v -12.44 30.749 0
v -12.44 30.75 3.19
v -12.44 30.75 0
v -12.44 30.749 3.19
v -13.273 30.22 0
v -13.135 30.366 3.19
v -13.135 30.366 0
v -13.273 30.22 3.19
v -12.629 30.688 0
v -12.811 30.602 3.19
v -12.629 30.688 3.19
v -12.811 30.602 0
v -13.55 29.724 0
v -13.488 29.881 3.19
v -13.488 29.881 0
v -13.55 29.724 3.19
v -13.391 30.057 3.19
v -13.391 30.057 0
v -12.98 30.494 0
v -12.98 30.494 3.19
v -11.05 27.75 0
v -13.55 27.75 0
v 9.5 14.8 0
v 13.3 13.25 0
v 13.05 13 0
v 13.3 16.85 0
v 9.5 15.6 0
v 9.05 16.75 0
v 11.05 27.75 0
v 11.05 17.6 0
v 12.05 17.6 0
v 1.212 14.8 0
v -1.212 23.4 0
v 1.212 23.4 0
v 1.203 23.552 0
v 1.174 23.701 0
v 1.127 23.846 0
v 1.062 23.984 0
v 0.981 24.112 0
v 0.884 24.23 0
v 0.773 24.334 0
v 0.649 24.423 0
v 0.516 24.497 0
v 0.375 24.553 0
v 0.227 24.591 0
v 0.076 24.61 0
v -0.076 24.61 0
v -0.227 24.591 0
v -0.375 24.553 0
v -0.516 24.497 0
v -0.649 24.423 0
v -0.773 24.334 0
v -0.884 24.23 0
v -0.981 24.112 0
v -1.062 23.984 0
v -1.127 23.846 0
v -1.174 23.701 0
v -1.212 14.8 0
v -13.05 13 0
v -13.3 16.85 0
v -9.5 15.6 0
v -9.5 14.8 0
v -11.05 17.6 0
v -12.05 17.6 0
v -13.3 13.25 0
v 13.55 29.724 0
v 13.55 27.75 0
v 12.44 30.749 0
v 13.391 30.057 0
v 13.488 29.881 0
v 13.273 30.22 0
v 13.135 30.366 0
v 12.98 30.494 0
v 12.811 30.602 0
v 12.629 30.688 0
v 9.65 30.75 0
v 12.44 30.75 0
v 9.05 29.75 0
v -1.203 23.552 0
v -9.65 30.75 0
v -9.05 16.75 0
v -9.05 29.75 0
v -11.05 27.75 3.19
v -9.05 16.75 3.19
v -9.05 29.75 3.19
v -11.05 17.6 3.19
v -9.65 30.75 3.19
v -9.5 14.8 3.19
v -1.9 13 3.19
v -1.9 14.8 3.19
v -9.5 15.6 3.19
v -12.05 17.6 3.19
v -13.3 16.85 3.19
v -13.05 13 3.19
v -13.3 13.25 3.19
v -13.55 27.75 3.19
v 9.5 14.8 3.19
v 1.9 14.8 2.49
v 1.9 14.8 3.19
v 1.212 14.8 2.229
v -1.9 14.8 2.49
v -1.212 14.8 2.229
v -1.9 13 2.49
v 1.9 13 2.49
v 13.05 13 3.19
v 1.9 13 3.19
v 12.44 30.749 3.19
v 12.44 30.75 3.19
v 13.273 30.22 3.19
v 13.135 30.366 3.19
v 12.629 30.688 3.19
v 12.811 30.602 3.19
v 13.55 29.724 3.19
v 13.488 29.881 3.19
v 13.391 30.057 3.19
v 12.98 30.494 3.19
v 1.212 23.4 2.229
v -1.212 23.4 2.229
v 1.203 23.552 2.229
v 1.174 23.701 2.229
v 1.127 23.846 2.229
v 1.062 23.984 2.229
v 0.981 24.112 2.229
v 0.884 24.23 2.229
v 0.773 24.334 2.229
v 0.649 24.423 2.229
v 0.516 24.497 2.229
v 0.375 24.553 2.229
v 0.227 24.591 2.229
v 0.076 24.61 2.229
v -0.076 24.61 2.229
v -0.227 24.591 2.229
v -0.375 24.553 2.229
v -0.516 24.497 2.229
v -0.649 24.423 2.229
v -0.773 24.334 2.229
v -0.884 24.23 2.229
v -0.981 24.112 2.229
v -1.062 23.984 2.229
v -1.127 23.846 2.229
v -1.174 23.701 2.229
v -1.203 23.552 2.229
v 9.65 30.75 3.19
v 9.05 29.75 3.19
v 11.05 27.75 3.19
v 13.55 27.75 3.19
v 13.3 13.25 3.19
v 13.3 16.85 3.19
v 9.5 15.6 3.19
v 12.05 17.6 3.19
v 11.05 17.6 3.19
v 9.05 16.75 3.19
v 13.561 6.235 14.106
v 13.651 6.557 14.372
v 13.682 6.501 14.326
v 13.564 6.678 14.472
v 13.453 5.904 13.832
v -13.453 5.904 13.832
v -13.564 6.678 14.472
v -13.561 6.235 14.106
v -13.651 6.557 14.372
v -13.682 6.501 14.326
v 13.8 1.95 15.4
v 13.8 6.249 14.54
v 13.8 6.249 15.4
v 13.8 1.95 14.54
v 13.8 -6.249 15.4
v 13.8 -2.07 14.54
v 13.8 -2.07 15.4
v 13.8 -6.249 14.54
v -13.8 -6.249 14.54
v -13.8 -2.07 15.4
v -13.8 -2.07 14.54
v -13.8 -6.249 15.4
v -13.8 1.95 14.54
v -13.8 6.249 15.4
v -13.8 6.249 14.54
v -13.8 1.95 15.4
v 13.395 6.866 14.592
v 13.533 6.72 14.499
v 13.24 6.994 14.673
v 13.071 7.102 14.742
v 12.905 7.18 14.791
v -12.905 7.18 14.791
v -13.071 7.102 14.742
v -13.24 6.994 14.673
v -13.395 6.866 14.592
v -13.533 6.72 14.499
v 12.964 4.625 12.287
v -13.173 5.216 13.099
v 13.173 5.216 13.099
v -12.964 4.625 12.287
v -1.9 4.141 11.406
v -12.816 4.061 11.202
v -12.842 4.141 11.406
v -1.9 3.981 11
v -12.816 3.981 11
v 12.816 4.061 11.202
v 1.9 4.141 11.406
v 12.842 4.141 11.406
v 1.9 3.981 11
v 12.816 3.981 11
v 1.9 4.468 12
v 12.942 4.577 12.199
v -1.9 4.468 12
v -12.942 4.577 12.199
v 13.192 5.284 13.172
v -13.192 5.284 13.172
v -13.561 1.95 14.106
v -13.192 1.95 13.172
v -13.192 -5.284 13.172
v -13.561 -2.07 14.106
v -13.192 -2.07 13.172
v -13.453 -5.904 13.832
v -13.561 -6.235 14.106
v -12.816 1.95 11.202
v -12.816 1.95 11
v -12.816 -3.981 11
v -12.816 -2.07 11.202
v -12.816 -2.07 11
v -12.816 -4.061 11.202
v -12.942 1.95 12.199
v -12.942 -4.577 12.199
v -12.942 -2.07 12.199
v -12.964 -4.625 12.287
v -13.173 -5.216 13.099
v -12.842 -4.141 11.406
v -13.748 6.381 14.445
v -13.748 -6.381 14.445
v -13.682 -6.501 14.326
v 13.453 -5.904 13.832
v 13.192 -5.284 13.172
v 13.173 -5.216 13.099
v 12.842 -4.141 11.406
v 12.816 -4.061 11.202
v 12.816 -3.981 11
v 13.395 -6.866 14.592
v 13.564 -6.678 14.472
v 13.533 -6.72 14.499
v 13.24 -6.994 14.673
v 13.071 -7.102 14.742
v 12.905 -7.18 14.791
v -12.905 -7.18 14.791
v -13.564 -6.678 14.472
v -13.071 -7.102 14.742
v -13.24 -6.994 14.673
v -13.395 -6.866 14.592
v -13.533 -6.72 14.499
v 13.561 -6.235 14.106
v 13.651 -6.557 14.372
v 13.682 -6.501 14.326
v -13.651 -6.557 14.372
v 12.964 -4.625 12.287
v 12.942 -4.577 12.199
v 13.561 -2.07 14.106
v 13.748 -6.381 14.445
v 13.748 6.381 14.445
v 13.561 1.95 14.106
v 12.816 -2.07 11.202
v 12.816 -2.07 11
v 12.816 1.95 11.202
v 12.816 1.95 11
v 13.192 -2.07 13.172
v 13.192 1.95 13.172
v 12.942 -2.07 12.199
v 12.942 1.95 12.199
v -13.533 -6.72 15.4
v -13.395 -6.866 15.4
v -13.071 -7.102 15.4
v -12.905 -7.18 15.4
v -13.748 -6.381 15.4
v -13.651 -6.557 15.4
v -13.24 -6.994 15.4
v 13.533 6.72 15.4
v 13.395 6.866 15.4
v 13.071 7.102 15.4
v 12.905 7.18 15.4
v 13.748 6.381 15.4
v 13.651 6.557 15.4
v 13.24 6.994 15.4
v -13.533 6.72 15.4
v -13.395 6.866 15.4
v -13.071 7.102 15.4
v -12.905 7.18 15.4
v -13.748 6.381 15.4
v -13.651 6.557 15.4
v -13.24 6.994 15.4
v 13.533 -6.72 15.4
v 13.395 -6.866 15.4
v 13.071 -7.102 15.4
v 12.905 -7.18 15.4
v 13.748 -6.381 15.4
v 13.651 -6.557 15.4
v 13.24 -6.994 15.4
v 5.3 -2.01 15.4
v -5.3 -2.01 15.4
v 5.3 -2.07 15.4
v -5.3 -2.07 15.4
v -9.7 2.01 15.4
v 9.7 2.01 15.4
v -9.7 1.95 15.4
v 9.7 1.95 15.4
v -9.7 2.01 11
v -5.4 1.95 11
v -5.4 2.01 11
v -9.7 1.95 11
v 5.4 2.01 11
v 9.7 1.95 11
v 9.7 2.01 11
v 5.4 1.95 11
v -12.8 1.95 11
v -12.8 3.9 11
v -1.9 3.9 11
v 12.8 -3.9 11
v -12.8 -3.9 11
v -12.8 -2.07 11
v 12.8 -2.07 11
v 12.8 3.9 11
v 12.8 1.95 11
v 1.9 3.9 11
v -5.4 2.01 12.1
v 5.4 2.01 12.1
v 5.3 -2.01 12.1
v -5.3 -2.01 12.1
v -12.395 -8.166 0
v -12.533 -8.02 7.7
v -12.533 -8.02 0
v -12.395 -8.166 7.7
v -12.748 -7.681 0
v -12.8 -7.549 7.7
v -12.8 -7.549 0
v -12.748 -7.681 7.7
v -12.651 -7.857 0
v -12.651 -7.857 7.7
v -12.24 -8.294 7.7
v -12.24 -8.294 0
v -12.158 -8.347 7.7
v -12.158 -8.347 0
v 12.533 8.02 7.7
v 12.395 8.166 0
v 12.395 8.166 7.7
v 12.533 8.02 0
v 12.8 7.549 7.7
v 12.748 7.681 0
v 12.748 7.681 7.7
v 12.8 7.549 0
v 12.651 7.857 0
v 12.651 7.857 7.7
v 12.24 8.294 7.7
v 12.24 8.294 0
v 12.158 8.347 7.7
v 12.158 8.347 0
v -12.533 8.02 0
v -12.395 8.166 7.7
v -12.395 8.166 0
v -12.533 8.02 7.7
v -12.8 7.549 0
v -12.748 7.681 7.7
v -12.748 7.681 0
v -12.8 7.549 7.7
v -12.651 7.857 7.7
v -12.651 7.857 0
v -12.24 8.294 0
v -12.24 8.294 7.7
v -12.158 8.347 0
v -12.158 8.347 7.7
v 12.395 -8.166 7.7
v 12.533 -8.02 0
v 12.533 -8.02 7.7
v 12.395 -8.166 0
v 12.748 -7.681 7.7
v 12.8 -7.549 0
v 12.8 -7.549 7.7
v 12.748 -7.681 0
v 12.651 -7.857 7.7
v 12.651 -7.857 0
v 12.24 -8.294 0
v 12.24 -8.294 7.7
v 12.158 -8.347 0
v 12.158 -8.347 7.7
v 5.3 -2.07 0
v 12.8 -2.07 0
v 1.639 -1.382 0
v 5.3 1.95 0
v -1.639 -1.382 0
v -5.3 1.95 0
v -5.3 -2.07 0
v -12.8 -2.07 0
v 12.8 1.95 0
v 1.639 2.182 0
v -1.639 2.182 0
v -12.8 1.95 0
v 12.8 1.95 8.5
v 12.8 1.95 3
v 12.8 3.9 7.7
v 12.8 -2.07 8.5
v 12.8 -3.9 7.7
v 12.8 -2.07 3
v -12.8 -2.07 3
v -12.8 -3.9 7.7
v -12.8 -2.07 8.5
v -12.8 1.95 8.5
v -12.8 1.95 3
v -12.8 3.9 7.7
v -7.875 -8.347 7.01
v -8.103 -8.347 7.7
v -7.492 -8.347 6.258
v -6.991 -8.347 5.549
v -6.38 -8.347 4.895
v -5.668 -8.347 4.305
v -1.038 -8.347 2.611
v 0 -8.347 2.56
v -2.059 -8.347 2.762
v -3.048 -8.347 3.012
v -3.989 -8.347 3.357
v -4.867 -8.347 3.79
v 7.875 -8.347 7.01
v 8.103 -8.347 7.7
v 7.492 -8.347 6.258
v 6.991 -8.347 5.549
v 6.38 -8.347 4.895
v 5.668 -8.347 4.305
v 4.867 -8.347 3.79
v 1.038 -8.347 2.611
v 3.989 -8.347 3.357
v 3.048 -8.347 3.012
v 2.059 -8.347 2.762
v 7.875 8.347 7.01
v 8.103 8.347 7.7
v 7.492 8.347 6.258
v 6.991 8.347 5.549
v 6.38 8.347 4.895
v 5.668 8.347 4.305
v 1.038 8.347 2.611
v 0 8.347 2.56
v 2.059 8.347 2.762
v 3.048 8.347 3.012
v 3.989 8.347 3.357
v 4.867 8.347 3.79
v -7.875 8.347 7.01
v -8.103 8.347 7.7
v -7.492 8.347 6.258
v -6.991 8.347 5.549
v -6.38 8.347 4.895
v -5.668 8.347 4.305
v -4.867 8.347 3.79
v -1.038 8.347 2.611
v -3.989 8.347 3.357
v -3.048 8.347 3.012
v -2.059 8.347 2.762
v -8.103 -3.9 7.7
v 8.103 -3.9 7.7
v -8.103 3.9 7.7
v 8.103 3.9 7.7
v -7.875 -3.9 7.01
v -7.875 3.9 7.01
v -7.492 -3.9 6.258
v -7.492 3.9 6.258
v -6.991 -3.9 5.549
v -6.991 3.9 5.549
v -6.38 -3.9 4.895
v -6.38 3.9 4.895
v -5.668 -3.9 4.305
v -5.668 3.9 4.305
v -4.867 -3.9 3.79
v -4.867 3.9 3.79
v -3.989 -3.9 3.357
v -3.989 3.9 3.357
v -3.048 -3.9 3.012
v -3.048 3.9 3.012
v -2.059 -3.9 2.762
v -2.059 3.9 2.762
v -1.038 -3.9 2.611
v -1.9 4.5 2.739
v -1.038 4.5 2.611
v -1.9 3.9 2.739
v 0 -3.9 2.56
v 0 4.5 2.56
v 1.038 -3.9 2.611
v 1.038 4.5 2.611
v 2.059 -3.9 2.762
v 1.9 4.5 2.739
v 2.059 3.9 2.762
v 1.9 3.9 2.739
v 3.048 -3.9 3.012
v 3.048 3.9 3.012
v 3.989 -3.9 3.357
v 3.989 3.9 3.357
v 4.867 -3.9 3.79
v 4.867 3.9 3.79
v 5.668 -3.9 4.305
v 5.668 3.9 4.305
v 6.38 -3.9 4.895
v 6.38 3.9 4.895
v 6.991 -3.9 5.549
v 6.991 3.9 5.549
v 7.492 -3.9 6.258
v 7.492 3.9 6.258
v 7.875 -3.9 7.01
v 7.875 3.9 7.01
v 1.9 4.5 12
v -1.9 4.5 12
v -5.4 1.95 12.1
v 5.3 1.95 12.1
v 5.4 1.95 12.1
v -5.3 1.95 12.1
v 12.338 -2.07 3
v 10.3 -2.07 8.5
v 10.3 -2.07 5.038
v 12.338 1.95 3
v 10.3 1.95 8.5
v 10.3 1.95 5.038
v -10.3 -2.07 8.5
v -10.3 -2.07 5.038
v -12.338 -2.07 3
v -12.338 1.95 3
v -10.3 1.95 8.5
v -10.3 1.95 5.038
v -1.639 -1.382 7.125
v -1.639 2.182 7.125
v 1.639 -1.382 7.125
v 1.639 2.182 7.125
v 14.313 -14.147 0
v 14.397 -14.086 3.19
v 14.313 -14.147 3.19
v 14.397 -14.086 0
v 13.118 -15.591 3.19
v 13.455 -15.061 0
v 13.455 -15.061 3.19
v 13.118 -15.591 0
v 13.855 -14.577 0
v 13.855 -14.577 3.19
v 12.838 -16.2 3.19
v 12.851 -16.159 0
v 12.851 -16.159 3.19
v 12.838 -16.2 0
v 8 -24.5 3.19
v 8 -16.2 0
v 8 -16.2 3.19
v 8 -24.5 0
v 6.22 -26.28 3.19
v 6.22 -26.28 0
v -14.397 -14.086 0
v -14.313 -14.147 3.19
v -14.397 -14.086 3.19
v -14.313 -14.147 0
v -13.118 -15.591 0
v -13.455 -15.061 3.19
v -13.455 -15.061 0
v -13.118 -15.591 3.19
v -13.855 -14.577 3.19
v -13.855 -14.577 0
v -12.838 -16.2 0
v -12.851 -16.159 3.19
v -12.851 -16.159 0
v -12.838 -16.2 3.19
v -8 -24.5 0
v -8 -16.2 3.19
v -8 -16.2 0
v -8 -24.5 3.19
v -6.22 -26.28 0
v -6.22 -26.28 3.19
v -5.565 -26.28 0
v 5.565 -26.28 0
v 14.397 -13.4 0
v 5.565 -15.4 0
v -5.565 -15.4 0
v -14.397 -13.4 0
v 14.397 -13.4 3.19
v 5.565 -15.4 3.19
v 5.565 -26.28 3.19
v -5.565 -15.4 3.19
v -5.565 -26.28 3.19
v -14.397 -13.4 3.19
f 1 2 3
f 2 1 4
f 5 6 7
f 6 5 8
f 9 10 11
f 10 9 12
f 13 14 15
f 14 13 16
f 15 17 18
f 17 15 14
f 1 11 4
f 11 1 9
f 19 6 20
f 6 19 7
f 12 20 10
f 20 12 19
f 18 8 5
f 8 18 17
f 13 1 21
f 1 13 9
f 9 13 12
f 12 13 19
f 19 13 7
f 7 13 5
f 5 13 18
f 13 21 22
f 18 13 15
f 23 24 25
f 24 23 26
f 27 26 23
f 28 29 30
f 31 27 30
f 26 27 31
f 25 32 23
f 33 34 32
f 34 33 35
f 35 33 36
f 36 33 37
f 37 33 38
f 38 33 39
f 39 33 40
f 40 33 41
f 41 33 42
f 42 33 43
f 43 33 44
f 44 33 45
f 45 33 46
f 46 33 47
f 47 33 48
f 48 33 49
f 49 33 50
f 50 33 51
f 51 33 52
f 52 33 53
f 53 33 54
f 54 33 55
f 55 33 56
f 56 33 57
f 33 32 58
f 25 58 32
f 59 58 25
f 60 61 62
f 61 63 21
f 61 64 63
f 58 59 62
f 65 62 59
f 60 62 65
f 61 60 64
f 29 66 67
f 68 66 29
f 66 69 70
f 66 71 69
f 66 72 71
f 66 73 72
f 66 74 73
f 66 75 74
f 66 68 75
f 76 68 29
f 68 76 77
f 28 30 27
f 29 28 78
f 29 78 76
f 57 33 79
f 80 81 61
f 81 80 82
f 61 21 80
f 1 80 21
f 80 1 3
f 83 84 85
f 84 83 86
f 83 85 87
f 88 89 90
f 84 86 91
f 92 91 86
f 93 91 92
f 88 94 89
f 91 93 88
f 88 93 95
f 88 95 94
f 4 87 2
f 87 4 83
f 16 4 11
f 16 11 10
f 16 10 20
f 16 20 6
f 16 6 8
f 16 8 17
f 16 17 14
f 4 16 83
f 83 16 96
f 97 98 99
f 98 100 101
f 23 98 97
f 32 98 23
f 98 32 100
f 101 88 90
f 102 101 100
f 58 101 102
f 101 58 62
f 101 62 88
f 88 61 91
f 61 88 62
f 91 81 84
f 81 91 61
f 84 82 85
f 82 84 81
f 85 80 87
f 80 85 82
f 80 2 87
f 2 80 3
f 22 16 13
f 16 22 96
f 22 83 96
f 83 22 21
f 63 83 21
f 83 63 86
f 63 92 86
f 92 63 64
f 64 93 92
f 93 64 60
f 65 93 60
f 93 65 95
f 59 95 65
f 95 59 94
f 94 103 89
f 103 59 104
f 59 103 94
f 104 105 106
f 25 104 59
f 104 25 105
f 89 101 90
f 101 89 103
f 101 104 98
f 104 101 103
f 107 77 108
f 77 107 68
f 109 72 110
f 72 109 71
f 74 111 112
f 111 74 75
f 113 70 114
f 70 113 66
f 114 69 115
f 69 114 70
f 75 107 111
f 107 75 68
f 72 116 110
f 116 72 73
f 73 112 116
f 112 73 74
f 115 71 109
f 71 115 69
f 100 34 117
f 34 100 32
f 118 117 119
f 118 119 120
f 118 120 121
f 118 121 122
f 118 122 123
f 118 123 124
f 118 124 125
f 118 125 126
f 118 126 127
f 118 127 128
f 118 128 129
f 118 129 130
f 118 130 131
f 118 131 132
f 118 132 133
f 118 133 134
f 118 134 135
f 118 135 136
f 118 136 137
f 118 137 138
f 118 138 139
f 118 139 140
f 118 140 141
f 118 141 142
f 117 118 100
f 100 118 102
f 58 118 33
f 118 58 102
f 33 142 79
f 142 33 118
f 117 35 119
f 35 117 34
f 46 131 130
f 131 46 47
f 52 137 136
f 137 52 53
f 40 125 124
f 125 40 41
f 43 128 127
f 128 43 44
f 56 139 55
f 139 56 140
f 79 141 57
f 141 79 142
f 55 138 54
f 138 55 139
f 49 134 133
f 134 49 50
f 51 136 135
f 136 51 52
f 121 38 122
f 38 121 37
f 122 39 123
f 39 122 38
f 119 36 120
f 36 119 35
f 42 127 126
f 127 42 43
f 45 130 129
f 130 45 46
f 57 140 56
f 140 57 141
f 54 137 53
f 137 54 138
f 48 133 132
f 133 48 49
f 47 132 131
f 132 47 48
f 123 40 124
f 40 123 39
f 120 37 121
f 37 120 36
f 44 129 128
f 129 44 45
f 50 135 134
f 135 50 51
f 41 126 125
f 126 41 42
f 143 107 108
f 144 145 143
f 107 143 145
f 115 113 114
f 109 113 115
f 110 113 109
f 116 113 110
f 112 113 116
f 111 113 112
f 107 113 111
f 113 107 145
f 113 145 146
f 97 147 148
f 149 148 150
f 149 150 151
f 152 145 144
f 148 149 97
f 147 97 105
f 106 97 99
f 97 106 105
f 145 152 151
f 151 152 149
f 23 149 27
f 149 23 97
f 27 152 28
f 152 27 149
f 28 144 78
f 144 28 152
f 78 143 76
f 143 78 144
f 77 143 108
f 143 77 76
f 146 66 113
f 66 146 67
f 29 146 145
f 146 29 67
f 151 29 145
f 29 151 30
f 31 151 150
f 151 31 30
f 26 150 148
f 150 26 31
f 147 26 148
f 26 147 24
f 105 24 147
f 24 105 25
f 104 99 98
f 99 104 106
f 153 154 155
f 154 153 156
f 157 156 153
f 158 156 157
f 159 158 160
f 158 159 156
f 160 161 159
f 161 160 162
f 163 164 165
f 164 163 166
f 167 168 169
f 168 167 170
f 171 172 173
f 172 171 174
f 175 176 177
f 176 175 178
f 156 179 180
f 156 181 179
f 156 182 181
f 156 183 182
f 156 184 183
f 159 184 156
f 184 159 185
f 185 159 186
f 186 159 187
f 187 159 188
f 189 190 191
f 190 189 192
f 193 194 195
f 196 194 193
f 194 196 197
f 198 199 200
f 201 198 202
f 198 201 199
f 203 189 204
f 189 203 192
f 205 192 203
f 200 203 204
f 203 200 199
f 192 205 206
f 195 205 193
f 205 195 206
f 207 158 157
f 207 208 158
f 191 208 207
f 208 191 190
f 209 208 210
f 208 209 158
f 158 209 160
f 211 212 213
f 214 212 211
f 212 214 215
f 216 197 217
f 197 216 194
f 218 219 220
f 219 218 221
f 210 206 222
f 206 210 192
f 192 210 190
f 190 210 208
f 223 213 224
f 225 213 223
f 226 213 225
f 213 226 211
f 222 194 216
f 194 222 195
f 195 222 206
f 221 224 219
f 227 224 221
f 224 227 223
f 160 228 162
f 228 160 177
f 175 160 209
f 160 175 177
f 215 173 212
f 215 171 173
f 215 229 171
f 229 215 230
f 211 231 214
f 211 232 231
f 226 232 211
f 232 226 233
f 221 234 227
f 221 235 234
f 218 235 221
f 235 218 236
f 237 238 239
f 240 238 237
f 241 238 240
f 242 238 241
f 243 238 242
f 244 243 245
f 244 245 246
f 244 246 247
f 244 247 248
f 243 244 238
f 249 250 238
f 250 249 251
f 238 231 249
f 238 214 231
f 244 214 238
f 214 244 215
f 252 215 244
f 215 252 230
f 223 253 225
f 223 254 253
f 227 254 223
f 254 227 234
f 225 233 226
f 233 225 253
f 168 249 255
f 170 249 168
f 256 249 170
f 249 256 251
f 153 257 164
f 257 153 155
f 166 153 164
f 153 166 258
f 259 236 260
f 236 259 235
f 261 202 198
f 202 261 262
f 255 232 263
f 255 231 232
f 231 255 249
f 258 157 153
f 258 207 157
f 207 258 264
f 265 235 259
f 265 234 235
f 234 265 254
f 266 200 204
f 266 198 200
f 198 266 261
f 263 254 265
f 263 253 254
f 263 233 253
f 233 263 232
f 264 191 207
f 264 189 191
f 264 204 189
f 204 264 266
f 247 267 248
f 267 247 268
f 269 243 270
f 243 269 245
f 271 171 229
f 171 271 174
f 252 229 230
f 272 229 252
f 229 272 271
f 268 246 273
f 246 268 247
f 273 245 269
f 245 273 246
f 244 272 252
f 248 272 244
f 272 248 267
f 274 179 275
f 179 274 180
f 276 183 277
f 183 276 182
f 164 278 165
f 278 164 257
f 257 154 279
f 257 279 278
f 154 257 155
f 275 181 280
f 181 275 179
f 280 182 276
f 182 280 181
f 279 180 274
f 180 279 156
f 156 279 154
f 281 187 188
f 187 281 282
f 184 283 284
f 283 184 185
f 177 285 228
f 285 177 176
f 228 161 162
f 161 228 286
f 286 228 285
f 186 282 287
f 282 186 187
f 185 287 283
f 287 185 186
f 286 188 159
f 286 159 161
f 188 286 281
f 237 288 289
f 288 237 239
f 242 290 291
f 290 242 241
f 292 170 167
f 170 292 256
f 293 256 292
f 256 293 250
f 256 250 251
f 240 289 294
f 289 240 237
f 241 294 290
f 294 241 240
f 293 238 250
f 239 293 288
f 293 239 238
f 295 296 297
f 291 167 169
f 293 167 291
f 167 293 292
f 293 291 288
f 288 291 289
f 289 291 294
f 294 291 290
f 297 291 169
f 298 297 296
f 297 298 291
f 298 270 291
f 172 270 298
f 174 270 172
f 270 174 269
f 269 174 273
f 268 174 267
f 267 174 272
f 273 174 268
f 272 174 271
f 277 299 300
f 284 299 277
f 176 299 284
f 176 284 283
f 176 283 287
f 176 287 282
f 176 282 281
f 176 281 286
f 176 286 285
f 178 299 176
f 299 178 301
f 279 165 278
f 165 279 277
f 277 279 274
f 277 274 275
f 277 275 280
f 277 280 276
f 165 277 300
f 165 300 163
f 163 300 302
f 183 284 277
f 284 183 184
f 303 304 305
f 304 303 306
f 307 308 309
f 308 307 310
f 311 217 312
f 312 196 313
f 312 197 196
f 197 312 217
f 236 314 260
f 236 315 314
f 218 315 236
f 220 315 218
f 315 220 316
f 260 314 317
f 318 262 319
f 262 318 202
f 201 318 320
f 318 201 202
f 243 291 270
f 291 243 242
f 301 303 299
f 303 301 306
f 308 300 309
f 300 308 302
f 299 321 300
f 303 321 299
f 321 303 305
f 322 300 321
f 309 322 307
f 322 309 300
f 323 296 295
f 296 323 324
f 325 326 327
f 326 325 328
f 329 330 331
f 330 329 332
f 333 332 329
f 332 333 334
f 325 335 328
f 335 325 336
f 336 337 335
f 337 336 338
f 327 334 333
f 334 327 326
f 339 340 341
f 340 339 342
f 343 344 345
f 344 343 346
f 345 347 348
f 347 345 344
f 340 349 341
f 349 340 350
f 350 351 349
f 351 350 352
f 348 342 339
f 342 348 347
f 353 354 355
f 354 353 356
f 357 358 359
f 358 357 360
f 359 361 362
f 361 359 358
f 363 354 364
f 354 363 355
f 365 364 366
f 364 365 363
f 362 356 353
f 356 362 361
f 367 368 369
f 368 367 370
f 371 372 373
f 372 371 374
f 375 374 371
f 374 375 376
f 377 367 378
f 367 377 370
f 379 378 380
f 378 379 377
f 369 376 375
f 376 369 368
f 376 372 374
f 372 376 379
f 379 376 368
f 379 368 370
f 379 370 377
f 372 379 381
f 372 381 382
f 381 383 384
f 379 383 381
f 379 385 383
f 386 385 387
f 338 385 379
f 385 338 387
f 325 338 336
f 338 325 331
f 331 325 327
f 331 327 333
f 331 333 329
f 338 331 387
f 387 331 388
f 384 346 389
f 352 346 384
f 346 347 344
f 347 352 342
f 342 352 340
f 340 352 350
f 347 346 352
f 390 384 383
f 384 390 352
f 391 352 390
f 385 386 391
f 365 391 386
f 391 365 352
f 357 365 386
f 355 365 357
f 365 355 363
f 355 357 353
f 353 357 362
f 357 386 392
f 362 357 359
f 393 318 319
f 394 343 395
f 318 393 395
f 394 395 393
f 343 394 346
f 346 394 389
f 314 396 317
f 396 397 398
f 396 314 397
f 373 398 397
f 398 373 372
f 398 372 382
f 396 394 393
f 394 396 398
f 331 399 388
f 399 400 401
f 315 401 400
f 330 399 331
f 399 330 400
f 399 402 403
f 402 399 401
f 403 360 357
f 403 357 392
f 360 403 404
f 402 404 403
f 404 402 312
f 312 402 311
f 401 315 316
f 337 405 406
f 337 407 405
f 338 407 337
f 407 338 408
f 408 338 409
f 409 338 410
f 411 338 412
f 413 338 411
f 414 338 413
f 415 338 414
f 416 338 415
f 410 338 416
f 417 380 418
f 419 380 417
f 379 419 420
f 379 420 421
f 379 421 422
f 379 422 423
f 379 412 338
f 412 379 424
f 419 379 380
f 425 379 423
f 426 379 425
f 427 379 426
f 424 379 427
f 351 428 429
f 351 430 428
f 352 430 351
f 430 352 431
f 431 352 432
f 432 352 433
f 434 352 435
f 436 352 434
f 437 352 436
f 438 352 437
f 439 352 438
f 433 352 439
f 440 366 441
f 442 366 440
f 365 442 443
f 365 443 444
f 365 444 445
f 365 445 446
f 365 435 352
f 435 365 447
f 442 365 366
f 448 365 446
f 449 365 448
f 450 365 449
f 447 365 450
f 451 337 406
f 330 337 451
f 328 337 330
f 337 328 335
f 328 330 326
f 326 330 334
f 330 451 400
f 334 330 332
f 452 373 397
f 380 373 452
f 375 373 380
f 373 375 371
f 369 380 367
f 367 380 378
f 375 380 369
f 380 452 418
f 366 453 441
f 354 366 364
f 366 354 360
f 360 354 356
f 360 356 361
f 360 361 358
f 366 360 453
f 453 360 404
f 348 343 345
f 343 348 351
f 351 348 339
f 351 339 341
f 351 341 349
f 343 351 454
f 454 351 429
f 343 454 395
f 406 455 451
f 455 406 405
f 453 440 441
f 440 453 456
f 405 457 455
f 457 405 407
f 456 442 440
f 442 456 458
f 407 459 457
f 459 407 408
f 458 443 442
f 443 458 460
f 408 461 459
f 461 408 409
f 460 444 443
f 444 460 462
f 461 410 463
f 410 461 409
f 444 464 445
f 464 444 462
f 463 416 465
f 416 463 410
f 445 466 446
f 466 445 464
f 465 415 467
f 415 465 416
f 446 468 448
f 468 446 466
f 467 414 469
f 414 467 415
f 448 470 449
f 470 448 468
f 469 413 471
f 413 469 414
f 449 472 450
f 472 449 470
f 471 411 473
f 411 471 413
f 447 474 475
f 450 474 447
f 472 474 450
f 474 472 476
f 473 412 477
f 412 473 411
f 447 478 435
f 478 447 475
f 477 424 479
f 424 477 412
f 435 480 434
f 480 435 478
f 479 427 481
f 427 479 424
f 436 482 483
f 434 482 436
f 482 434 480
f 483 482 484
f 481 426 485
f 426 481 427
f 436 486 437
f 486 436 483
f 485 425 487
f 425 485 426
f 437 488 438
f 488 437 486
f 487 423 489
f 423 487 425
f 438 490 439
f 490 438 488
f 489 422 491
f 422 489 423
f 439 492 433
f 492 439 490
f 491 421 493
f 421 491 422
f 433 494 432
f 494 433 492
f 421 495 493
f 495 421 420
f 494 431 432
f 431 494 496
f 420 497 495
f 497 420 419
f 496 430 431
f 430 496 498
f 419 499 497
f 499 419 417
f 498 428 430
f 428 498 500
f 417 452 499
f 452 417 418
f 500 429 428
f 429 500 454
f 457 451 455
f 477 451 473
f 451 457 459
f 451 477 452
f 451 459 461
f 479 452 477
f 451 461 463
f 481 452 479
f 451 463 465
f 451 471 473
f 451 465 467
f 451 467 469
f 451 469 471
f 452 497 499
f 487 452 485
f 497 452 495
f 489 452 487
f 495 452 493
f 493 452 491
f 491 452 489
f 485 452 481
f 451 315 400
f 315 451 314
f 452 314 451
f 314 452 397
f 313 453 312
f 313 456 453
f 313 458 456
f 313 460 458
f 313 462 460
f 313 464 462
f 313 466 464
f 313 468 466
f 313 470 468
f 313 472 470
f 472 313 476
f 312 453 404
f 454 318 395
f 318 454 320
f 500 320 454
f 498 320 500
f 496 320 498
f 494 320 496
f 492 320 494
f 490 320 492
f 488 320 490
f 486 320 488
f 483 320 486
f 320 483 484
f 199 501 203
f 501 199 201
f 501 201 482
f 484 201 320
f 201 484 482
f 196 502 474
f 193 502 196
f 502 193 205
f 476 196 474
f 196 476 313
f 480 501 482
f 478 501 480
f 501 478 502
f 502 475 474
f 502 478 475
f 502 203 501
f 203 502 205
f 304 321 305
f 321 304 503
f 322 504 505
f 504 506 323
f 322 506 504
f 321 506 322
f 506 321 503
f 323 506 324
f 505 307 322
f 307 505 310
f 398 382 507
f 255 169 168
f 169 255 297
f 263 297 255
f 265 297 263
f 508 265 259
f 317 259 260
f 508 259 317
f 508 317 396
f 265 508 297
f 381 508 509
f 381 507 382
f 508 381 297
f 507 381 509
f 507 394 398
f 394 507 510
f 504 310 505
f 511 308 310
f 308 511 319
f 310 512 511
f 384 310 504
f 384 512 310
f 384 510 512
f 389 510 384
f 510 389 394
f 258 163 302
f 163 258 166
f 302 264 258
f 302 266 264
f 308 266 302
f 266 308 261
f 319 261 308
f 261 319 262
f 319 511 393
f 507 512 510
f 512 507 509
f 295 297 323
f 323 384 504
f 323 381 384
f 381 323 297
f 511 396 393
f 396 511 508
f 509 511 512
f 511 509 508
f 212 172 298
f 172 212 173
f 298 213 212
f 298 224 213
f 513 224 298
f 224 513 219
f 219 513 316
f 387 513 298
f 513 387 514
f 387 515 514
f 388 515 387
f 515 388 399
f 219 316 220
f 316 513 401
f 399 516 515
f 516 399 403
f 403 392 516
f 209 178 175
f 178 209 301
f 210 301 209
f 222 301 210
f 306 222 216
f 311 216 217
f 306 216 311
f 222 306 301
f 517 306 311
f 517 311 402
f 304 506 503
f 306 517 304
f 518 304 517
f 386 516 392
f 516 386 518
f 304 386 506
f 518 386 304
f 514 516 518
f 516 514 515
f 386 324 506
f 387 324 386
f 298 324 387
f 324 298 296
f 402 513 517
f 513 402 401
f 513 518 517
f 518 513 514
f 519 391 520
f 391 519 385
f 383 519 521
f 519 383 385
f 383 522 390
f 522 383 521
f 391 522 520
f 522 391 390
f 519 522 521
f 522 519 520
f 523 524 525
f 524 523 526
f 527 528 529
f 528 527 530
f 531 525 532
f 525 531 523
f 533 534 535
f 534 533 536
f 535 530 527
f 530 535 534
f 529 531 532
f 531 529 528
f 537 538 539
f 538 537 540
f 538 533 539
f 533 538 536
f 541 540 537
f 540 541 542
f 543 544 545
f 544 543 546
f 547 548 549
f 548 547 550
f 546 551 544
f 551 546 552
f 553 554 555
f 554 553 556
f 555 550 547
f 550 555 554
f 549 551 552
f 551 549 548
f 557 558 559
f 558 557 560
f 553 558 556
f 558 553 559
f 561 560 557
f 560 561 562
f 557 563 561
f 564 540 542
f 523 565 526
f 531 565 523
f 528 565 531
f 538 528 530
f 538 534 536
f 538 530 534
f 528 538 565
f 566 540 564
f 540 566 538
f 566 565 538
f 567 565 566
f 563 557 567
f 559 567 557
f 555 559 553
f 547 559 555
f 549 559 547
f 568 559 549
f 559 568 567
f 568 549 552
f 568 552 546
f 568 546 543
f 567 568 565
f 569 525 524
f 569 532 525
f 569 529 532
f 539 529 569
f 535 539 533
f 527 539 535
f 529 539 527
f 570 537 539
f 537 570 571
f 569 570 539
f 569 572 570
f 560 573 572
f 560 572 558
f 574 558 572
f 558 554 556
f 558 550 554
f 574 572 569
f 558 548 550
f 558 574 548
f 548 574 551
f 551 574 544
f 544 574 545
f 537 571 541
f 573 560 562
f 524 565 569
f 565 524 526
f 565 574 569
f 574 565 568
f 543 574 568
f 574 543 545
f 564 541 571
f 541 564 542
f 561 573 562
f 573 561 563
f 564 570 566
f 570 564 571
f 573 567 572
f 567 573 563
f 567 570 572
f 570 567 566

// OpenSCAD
// ITC Data-only / power block -*- C++ -*-
// Copyright (C) 2018-2019 The T2 Tile Project
// Licensed under GPL-3

function in2MM ( vec) = 25.4 * vec;
function max3 ( v ) = max(v[0],v[1],v[2]);

// Base measurements
boardWidthMM = 17.95;
boardLengthMM = 25.6;
boardSlotXStartMM = 7.4;
boardSlotXEndMM = 10.59;
boardSlot1YStartMM = 0.0;
boardSlot1YEndMM = 3.0;
boardSlot2YStartMM = 22;
boardHeightMM = 1.6;
boardBoxClearanceMM = 1.8;  // height from top of board to bottom of engaged box header
boardSolderClearanceMM = 1.5;  // height from bottom of board to top of solder posts
headerWidthMM = in2MM(.2);  // excluding key
headerLengthMM = in2MM(.8);
boxWidthMM = in2MM(.3);    // XXX placeholder
boxLengthMM = in2MM(1.2);  // XXX placeholder
boxGapMM = in2MM(.09);      // XXX placeholder
loopHeightMM = 16.25 + boardSolderClearanceMM;
keyWidthMM = 3.8;
interiorPillarWidthMM = 10.6;

nominalSlotWidth = 3.35;

grabTabHeightMM = 11;
grabBridgeHeightMM = -1;
capsuleRadiusMM=5;
capsuleHalfLenMM = 9.7;
flatWidth = .8*boardWidthMM;
flatHeight = 4;

expandPostPercent=15;
narrowPostPercent=32;
postHoleLength = (100+expandPostPercent)/100*2.85;
postHoleWidth = (100+expandPostPercent)/100*3.1;
postHoleInsertDepth = 7;
postHoleHeight = 14.25;
//postHoleCenterOffset = nominalSlotWidth-postHoleWidth;
postHoleCenterOffset = -.4;

keyInDepthFrac = 0.33;
keyInWidthMM = 1.5;


// Derived measurements
boardSlot2YEndMM = boardHeightMM;

baseplateWidthMM = 2*boxWidthMM + boxGapMM;
baseplateLengthMM = boxLengthMM;
baseplateHeightMM = boardBoxClearanceMM;

halfplateWidthMM = baseplateWidthMM;
halfplateLengthMM = baseplateLengthMM/2;
halfplateHeightMM = baseplateHeightMM;

keyInDepthMM = keyInDepthFrac * (boardSlotXEndMM - boardSlotXStartMM);

arcRad = 1.5;

// arc module based on code by chickenchuck040, licensed under CC-BY,
// found at http://www.thingiverse.com/thing:1092611
module arc(radius, thick, angle,start_angle){
  rotate([0,0,start_angle])
    intersection(){
    union(){
      rights = floor(angle/90);
      remain = angle-rights*90;
      if(angle > 90){
        for(i = [0:rights-1]){
          rotate(i*90-(rights-1)*90/2){
            polygon([[0, 0], 
                     [radius+thick, (radius+thick)*tan(90/2)], 
                     [radius+thick, -(radius+thick)*tan(90/2)]]);
          }
        }
        rotate(-(rights)*90/2)
          polygon([[0, 0], 
                   [radius+thick, 0], 
                   [radius+thick, -(radius+thick)*tan(remain/2)]]);
        rotate((rights)*90/2)
          polygon([[0, 0], 
                   [radius+thick, (radius+thick)*tan(remain/2)], 
                   [radius+thick, 0]]);
      }else{
        polygon([[0, 0], 
                 [radius+thick, (radius+thick)*tan(angle/2)], 
                 [radius+thick, -(radius+thick)*tan(angle/2)]]);
      }
    }
    difference(){
      circle(radius+thick);
      circle(radius);
    }
  }
}

module edgeRounder()
{
  difference() {
    cube(10,10,10);
    translate([-2,-2,-1])
      cylinder(h=12,r=8);
  }
}

module baseplate() {
  cube([baseplateLengthMM, baseplateWidthMM, baseplateHeightMM]);
}

module halfplate() {
  cube([halfplateLengthMM, halfplateWidthMM, halfplateHeightMM]);
}

module throughslot() {
  slotWidth = boardSlotXEndMM - boardSlotXStartMM;
  cube([slotWidth,1,boardHeightMM]);
}

// Build one full end of an itc tab
module tabend() {
  throughslot();
}

module itctab() {
  difference() {
    union() {
      // Basic additions
      baseplate();
      for (ends = [[[0,0,0],0],
                   [[boardWidthMM,boardLengthMM,0],180]]) {
        translate(ends[0]) {
          rotate([0,ends[1],0]) {
            tabend();
          }
        }
      }
    }

    // Basic subtractions
    {
      totalHeadersWidth = 2*headerWidthMM+boxGapMM; // XXX wrong gap
      headerXInset = (boardWidthMM - totalHeadersWidth)/2;
      headerYInset = (boardLengthMM - headerLengthMM)/2;
      translate([headerXInset,headerYInset,0]) {
        cube([headerLengthMM,headerWidthMM,boardBoxClearanceMM]);
      }
      translate([headerXInset,headerYInset+headerWidthMM+boxGapMM,0]) {
        cube([headerLengthMM,headerWidthMM,boardBoxClearanceMM]);
      }
    }
  }
}

// Half the loop running through the slots and under the board
// Polygon points:
//
//        h....i1
//        .      . 
//        .       i2
//       g2...g1  .
//            .   .
//            .   .
//            .   .
//            .   .
//            .   .
//            .   .
//            g   .
//           .    .
//     e....f     .
//    .           .
//   d            .
//   .            j
//   .           .
//   .          k
//   .          .
//   .          l...........m
//   c                      .
//    .                     .
//     b....................a
//

function itchLoopPts() =
  let (slotWidth = boardSlot2YStartMM-boardSlot1YEndMM,
       halfSlotWidth = slotWidth/2,
       kHeight=boardHeightMM+1)
  let (BdX = -boardLengthMM/2-0.25,
       CdX = -.25,
       CdY = 0.25,
       DdY = 2+1.6,
       EdX = 1.25, 
       EdY = 0.75,
       FdX = 1.0,
       GdX = 0.0,
       GdY = 0.25,
       G1dY = -3, // down from loop height
       G2dX = 2.5,   
       I1dX = 3.9, // XXX dependent on slot width
       I2dX = 0.6, // XXX dependent on slot width
       I2dY = -1., 
       JdY = -13)
    let (a = [0,0],
         b = [a[0]+BdX, a[1]],
         c = [b[0]+CdX, b[1]+CdY],
         d = [c[0], c[1]+DdY],
         e = [d[0]+EdX, d[1]+EdY],
         f = [e[0]+FdX, e[1]],
         g = [f[0]+GdX, f[1]+GdY],
         g1 = [g[0], loopHeightMM+G1dY],
         g2 = [g1[0]-G2dX, g1[1]],
         h = [g2[0], loopHeightMM],
         i1 = [h[0]+I1dX, h[1]],
         i2 = [i1[0]+I2dX, h[1]+I2dY],
         j = [i2[0], i2[1]+JdY],
         k = [-halfSlotWidth, kHeight],
         l = [k[0], boardBoxClearanceMM],
         m = [a[0], l[1]])
//[0][1][2][3][4][5][6] [7] [8][9][10][11][12][13][14][15]
  [a, b, c, d, e, f, g, g1, g2, h, i1, i2,  j,  k,  l,  m];

module itchLoop(keyin) {
  slotWidth = boardSlotXEndMM - boardSlotXStartMM;
  pts = itchLoopPts();
  difference() {
    union() {
      linear_extrude(height = slotWidth)
        polygon(pts);
      narrowedPostWidth = (100-narrowPostPercent)/100*postHoleWidth;
      narrowedPostLength = (100-narrowPostPercent)/100*postHoleLength;
      narrowedPostHeight = boardHeightMM + boardBoxClearanceMM + postHoleInsertDepth;
      if (keyin) {
        translate([-narrowedPostWidth/2,0,0]) {
          union() {
            cube([narrowedPostWidth,narrowedPostHeight,narrowedPostLength]);
            translate([narrowedPostWidth/2,narrowedPostHeight,0])
              cylinder(h=narrowedPostLength,r=narrowedPostWidth/2);
          }
        }
      }
    }
#    for (j = [+1]) {
      scale([1,j,1]) {
        for (i = [-1]) {
          translate([i*12.44,i*-16.6,-2]) {
            rotate([0,0,i*-90])
              scale([.2,.2,1])
              edgeRounder();
          }
        }
      }
    }
    translate([0,0,0]) {
      halfKeyWidthMM = keyWidthMM/2;
      keyHeightMM = 0.7;
      translate([-halfKeyWidthMM,0,slotWidth-keyHeightMM]) {
        cube([halfKeyWidthMM,pts[15][1],3]);
      }
    }
  }
}

module itch10()
{
  scale([1,1,1]) itchLoop(false);
  scale([-1,1,1]) itchLoop(true);

}
module thumb10() {
  slotWidth = boardSlotXEndMM - boardSlotXStartMM;
  tabWidth = 7.8;
//  flangeWidth = 1.85*tabWidth;
  flangeWidth = 0.95*boardWidthMM;
  radius = tabWidth/2;
  union() {
    difference() {
      union() {

        // Grab tab
        linear_extrude(height=grabTabHeightMM) {
          union() {
            translate([-boardLengthMM/2,-tabWidth/2]) {
              square([boardLengthMM,tabWidth]);
            }
          }
        }
        // Symmetry-breaking key-out extension (taller to punch into curveout)
        linear_extrude(height=grabTabHeightMM+1) {
          translate([0,.6,0]) {
            square([keyWidthMM,tabWidth],center=true);
          }
        }

        // Top rounding
       capsule();

        // Base flange
        flangeThickness=7.7;
       difference() {
         linear_extrude(height=flangeThickness) {
           translate([0,0,0]) {
             square([boardLengthMM,.93*boardWidthMM],center=true);
           }
         }

         // Drop arcs on sides for finger clearance
         translate([0.0,10,9]) rotate([90,0,0]) 
           scale([1.8,1.4,1])
           linear_extrude(height=20) 
           arc(.1,4.5,180,-90);
          
         //
         for (j = [-1,+1]) {
           scale([1,j,1]) {
             for (i = [-1,+1]) {
               translate([i*11.7,i*-7.4,-2]) {
                 rotate([0,0,i*-90])
                   scale([.2,.2,1])
                   edgeRounder();
               }
             }
           }
         }
       }

      // raise top of inner pillar
     translate([-(interiorPillarWidthMM+.2)/2,-1.2*nominalSlotWidth/2,grabTabHeightMM]) {
        cube([interiorPillarWidthMM+.2,1.2*nominalSlotWidth,1.1]);
      }


      }

      rotate([90,0,0])
        tabNotches(tabWidth/2);
    }
*    linear_extrude(height=grabTabHeightMM-grabBridgeHeightMM) {
      translate([0,0,0]) {
        square([interiorPillarWidthMM,7],center=true);
      }
    }
  }
}

module capsuleCap() {
  capRadius = .92*capsuleRadiusMM;
  capHalfLen = 1.01*capsuleHalfLenMM;
  slotWidth = boardSlotXEndMM - boardSlotXStartMM;

  difference() {
    union() {
      linear_extrude(height=slotWidth) {
        translate([capHalfLen,-capRadius]) {
          square([capRadius,capRadius]);
        }
        translate([-capHalfLen,-capRadius]) {
          rotate([0,0]) {
            square([2*capHalfLen,2.8*capRadius]);
          }
        }
        translate([-capHalfLen-capRadius,-capRadius]) {
          square([capRadius,capRadius]);
        }
      }
    }
    pillarGap = 1.05*interiorPillarWidthMM;
    pillarGapDrop = -2;
    translate([-pillarGap/2,-capRadius-pillarGapDrop,-1]) {
      cube([pillarGap,12,10]);
    }
    for (i = [-1,1]) {
      scale([i,1,1])
      translate([8.5,-0,-1]) {
        translate([9,0,0])
           cylinder(h=5,r=5);
        translate([-.50,-1.8,0])
          cube([6,10,10]);
        translate([4,3,0]) {
          cube([7,10,10]);
        }
        // Slightly angle the cap wedges to ease insertion
        translate([2.2,3.8,0]) {
          rotate([0,0,45])
            cube([5,8,6]);
        }
      }
    }
  }
}

module capsule() {
  height = grabTabHeightMM;
  flatOverhang = 2;
  length = boardLengthMM + flatOverhang;
  difference() {
    translate([-length/2,-flatWidth/2,height]) {
      cube([length,flatWidth,1.1*flatHeight]);
    }
    for (i = [-1,1]) {
      translate([-length/2,i*(-flatWidth/2-4.2),height/2+2.5]) {
       rotate([0,90,0]) {
          cylinder(h=length,r=8);
        }
      }
      translate([i*(length/2+7),(-flatWidth/2-4.6),height/2+5.2]) {
        rotate([0,90,90]) {
          cylinder(h=length,r=8);
        }
      }
    }
    for (j = [-1,+1]) {
      scale([1,j,1]) {
        for (i = [-1,+1]) {
          translate([i*12.7,i*-6.1,8]) {
            rotate([0,0,i*-90])
              scale([.2,.2,1])
              edgeRounder();
          }
        }
      }
    }
    translate([0,0,height]) {
      cube([2*capsuleHalfLenMM,1.20*nominalSlotWidth,30],center=true);
    }
  }
}

module tabNotches(zoffset) {
  cubeX = 5;
  //  cubeY = loopHeightMM;
  cubeY = 3;
  //  cubeZ = zoffset;
  cubeZ = 1.20*nominalSlotWidth;
  fudgeY = 1;
  tabLatchShelfOffset = 9.5;
  // Center post hole
  translate([0,0,postHoleCenterOffset])
    cube([postHoleLength,postHoleHeight,postHoleWidth],center=true);
  translate([-cubeX/2,0,0])
  for (i = [1, -1]) {
    translate([i*((boardLengthMM-cubeX)/2),-fudgeY,-zoffset/2]) {
      cube([cubeX,cubeY+fudgeY,cubeZ]);
      translate([cubeX/2,4.2,cubeZ/2]) {
        rotate([0,0,i*-45]) {
          cube([cubeX,2.6,cubeZ],center=true);
        }
      }
      translate([-cubeX/2,tabLatchShelfOffset,0]) {
        cube([2*cubeX,10,cubeZ]);
      }
      translate([-i*cubeX/2,0,0]) {
        cube([1*cubeX,25,cubeZ]);
      }
    }
  }
}

$fn=50;
translate([0,13,0]) {
  itch10();
}

thumb10();

translate([0,-18,0]) {
  rotate([0,0,180]) {
    capsuleCap(); 
  }
}

*translate([10,10,10]) edgeRounder();
